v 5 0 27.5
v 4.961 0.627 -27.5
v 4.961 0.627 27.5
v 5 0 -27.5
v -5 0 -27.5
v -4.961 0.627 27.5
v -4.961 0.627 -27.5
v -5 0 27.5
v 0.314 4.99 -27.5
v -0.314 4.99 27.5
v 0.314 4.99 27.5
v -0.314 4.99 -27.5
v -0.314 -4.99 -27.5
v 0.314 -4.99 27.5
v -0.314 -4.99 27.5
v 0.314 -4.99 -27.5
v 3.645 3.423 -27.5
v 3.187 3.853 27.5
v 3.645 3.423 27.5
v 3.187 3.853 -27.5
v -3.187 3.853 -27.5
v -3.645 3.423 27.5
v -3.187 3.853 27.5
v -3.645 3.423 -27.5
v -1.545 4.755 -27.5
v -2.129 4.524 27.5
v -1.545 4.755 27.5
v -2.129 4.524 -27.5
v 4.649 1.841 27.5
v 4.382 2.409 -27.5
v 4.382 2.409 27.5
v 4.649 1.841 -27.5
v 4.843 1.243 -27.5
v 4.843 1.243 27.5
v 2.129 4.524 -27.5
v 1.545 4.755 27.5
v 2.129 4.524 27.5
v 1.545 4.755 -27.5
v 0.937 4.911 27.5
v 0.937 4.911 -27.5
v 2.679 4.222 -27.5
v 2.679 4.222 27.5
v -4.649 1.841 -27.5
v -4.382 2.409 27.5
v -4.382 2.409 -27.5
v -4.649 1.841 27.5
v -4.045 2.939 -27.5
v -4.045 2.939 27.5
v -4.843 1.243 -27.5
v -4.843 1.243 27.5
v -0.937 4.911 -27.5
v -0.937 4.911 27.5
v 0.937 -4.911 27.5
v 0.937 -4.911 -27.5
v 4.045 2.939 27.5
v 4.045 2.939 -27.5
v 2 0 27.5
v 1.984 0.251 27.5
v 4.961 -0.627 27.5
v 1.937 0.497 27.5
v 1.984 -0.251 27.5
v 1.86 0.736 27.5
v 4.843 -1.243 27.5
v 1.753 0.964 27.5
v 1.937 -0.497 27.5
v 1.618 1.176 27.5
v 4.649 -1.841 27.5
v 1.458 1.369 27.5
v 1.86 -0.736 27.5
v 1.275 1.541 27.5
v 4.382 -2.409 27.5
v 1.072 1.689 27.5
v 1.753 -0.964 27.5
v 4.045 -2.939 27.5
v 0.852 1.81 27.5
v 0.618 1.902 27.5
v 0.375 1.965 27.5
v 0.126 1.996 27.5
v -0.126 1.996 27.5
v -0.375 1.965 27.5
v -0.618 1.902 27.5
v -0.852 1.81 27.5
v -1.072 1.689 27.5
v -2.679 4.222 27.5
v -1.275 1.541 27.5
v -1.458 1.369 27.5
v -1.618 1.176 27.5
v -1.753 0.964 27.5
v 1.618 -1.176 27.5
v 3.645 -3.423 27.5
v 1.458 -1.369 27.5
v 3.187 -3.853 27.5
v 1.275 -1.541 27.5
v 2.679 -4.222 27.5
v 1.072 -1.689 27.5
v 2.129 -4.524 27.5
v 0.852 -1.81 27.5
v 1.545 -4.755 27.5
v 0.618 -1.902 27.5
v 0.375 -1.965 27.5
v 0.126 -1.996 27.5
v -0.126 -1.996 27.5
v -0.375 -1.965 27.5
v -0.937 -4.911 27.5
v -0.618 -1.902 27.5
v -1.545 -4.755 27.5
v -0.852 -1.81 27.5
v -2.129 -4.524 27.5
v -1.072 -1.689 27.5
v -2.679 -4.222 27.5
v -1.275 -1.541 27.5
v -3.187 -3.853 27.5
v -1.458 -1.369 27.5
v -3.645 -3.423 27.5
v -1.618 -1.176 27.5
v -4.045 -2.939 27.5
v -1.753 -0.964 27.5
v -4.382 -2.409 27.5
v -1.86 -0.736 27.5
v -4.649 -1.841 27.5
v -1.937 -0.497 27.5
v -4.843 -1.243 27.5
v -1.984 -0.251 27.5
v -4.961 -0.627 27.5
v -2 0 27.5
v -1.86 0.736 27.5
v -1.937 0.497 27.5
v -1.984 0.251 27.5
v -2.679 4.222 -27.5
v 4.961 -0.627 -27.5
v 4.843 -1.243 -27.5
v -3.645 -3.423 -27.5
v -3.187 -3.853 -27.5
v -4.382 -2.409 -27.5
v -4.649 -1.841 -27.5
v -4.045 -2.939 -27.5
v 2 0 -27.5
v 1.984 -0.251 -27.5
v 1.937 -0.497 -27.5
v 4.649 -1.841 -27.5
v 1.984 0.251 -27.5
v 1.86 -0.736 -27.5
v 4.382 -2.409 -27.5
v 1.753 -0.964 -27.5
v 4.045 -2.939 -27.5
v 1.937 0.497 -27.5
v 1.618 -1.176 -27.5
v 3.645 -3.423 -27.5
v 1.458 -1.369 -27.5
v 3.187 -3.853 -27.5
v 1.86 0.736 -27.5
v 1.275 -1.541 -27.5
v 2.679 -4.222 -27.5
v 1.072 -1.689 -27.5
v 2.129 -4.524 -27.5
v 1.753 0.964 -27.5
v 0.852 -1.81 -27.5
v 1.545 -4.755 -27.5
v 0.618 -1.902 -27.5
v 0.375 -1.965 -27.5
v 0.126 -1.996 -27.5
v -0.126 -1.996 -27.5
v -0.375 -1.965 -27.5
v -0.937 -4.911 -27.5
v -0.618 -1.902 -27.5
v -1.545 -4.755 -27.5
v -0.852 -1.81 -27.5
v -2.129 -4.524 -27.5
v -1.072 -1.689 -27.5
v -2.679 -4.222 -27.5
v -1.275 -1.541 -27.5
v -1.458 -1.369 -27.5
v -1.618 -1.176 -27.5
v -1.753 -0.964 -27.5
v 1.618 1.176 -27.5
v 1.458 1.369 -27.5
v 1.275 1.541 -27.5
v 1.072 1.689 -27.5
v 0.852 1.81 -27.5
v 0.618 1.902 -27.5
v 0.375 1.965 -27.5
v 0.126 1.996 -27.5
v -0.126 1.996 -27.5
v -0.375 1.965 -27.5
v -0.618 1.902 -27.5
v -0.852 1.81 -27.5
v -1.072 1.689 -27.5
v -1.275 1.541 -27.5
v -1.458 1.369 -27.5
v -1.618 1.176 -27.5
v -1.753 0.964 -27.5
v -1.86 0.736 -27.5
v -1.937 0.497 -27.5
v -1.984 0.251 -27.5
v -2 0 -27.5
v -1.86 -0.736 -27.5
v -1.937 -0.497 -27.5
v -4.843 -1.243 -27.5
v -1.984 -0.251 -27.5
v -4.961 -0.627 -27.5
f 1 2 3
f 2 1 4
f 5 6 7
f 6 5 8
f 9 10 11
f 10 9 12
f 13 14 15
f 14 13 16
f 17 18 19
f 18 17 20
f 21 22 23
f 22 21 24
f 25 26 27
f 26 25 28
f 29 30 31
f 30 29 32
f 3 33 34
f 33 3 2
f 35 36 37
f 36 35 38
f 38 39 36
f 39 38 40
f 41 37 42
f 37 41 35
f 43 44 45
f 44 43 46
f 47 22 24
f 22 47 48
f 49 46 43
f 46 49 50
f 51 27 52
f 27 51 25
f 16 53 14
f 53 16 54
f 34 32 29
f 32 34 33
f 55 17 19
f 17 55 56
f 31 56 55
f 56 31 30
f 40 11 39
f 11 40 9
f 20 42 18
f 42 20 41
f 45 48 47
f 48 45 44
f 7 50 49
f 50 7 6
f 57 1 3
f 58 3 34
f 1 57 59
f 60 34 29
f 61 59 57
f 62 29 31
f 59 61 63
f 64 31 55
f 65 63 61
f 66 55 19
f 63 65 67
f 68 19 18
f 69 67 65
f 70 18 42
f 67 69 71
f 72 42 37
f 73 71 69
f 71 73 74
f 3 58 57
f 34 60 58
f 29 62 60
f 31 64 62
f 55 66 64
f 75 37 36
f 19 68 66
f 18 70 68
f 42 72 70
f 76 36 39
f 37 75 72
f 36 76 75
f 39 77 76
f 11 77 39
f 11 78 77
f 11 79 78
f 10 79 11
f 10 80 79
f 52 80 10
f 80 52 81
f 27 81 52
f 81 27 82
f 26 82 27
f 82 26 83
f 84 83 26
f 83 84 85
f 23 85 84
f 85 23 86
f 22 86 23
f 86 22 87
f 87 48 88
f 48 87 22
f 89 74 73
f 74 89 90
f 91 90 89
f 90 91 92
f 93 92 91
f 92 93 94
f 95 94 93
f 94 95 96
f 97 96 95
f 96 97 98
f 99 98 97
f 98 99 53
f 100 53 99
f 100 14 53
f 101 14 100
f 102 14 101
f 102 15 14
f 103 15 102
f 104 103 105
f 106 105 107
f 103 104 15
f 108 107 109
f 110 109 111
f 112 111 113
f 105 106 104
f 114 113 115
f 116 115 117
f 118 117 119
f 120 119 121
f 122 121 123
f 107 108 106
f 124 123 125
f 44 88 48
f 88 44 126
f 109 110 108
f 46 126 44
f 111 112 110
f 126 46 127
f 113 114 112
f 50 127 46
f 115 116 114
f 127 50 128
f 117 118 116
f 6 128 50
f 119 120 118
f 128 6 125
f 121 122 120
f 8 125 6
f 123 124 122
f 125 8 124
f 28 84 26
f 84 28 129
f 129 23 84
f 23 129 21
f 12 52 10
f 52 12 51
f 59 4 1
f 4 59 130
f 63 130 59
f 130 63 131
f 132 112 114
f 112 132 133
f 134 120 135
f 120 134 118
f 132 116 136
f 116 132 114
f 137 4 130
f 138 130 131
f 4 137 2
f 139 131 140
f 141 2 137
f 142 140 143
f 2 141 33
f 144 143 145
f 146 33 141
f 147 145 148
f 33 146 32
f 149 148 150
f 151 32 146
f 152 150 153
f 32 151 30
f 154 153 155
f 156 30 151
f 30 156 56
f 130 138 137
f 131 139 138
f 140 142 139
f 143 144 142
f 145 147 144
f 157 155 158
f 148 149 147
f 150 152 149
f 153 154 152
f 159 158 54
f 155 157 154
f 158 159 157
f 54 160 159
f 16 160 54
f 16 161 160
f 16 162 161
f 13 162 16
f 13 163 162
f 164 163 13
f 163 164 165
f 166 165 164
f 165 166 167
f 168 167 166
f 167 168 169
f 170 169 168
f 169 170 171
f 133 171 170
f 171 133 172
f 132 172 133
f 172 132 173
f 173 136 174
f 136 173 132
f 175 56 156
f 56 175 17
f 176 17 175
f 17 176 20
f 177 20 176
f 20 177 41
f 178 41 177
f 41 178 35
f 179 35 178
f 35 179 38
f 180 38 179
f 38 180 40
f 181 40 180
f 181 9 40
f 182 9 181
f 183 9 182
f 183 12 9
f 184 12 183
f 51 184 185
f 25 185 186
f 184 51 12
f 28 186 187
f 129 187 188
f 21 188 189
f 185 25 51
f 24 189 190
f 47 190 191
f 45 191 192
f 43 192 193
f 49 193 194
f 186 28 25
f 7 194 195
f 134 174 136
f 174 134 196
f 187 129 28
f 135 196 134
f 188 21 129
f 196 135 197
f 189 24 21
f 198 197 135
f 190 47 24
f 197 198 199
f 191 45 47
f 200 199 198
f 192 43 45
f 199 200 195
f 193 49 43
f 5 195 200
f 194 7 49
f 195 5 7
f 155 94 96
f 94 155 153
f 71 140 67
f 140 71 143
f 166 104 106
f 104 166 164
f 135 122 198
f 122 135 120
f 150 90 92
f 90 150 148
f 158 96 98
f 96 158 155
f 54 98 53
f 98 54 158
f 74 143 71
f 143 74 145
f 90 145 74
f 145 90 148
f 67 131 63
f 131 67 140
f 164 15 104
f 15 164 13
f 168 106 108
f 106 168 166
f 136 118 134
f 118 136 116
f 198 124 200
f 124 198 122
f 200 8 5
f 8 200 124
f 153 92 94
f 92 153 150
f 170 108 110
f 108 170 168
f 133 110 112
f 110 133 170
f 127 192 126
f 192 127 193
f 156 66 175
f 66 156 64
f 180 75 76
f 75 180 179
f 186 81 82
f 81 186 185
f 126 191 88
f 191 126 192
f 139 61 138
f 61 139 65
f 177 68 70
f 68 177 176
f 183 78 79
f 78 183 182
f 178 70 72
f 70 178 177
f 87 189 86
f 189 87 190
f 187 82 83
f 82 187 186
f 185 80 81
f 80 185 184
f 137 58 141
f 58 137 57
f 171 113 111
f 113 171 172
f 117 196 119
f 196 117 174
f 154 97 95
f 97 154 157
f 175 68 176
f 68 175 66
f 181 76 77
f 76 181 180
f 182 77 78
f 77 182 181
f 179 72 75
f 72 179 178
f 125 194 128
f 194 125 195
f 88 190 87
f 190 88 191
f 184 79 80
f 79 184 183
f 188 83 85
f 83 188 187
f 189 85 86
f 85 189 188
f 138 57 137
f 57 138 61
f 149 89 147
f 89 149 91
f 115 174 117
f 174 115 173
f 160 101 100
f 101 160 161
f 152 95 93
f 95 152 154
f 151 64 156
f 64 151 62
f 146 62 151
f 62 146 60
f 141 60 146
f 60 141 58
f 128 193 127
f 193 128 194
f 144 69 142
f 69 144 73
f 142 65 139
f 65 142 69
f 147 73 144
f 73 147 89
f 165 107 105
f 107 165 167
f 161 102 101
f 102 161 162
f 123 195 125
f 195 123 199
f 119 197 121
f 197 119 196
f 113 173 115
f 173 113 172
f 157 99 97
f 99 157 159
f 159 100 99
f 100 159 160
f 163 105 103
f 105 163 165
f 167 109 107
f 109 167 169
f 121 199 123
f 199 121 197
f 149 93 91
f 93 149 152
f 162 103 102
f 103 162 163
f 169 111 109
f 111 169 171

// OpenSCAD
$fn = 50;


difference() {
	union() {
		translate(v = [0, 0, -27.5000000000]) {
			cylinder(h = 55, r = 5.0000000000);
		}
	}
	union() {
		translate(v = [0, 0, -100.0000000000]) {
			cylinder(h = 200, r = 2);
		}
	}
}
